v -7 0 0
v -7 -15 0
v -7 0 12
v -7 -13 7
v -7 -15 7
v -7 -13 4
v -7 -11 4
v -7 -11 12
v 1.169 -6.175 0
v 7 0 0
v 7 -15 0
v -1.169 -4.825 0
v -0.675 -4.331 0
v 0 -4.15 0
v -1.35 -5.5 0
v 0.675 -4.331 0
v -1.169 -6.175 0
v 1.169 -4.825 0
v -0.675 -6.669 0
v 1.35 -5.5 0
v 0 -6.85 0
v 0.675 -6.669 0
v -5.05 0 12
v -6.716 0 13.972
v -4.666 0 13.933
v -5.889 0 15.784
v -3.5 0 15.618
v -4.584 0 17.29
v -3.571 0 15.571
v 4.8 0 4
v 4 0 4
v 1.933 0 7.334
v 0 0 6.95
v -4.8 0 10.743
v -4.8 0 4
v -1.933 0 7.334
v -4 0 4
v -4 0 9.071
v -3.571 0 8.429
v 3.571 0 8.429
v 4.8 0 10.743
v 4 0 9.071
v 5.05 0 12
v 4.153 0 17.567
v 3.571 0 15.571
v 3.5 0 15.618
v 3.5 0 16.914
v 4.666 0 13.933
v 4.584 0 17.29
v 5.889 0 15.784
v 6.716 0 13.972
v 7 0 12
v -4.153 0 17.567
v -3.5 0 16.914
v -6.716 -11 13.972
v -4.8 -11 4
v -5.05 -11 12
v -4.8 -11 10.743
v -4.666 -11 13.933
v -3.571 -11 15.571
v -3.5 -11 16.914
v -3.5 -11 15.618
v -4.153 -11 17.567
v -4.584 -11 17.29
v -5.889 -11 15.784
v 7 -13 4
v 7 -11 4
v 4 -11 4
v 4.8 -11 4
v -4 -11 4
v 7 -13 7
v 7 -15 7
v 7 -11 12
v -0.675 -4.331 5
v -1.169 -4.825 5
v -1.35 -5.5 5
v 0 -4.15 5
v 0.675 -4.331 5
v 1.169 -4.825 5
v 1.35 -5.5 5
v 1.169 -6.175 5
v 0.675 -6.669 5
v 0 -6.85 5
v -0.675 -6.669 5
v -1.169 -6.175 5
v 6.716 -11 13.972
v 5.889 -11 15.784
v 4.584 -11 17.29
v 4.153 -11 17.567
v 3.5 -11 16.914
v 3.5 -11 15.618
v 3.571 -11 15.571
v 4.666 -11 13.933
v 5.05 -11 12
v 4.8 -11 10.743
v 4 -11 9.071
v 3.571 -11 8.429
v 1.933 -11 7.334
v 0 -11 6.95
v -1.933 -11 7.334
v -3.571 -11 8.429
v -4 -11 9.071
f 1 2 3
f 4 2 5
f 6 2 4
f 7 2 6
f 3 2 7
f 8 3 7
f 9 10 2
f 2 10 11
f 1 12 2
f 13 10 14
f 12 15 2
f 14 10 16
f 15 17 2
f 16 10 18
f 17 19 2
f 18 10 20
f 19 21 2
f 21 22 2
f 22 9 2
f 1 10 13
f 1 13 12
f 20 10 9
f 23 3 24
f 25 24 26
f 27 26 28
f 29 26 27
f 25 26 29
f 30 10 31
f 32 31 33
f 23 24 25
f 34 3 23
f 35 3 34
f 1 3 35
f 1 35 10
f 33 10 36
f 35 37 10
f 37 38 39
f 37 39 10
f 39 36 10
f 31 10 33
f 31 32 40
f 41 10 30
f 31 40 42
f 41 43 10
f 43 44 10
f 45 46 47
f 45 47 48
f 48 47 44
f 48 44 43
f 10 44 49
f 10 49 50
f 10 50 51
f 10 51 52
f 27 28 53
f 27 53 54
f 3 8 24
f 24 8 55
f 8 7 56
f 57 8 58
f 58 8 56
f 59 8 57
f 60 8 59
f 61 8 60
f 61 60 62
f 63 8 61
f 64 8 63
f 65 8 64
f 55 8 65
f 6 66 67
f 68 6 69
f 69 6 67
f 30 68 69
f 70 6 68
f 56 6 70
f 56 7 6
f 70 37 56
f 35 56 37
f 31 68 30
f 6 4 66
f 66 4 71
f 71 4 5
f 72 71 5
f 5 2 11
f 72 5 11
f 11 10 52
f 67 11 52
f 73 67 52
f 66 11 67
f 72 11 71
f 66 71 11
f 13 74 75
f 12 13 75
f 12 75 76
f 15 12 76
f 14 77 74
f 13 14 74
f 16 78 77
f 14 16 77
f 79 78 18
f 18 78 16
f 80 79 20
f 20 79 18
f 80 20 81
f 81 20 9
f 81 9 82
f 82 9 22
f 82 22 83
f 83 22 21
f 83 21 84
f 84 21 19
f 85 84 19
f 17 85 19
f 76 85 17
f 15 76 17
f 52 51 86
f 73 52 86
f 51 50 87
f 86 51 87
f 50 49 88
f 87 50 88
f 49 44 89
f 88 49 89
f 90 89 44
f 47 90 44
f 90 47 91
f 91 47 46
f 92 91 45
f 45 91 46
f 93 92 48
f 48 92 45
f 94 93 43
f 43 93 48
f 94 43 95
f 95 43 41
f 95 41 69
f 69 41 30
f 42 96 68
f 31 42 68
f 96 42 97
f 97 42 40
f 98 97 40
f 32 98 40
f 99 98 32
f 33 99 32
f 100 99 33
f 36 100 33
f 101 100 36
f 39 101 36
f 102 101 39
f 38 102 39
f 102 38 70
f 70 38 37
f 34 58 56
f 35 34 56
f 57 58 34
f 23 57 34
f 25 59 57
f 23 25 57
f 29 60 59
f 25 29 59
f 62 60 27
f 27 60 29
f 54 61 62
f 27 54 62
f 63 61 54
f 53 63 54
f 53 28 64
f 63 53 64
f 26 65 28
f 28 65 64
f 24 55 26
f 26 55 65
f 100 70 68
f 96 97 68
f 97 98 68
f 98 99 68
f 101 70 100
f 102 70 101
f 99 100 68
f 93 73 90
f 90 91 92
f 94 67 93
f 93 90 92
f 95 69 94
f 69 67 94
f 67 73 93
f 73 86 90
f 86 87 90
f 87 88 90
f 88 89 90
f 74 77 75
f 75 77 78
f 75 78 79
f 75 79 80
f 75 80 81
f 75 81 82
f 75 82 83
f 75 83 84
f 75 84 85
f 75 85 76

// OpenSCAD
// file: configuration.scad
// PRUSA Mendel  
// Configuration file
// GNU GPL v2
// Josef Průša
// josefprusa@me.com
// prusadjs.cz
// http://www.reprap.org/wiki/Prusa_Mendel
// http://github.com/prusajr/PrusaMendel

// PLEASE SELECT ONE OF THE CONFIGURATIONS BELOW
// BY UN-COMMENTING IT

variant=0; //0 for metric
//variant=1; //1 for SAE
if(variant==0){
echo("variant: metric");
}else if(variant==1){
echo("variant: sae");
} else{
echo("WARNING: INVALID CONFIGURATION");
}


vars=[
//[m8_dia, m8_nut, m4_dia, m4_nut, m3_dia, m3_nut, bush_dia, mot_shaft, bush_rod, bush_outerdia, bush_length]
[8.3,16.4,4.3,9,3.3,7,11,5.3,8,16,11],//metric
[9,15.7,5.5,10.6,5.5,10.6,11.5,5.3,7.9375,16,11]//SAE
];

//BUSHING TYPE Can generate three versions
// 1 - regular old ones
// 2 - helical ones
// 3 - holders for brass or any other bought bushings
bushing_type = 2;

//Round corner diameter
round_corner_diameter = 8;

//X end parameters
axis_diameter_real = 4;
axis_diameter_larger = 4.2 ;
pressure_pad_height = 0.7;

//Thin wall size
layer_height = 0.4;
perimeter_width_over_thicknes = 1.6;
infill_widht_over_thickness = 1.55;
thin_wall = 2*(perimeter_width_over_thicknes*layer_height+infill_widht_over_thickness*layer_height);
if(thin_wall<2){
	echo("Check thin wall size, its below 2mm!");
}
echo(thin_wall);

//DO NOT TOUCH THIS SECTION!
m8_diameter = vars[variant][0];
m8_nut_diameter = vars[variant][1];
m4_diameter = vars[variant][2];
m4_nut_diameter = vars[variant][3];
m3_diameter = vars[variant][4];
m3_nut_diameter = vars[variant][5];
bushing_diameter = vars[variant][6];
motor_shaft=vars[variant][7];
bushing_rodsize = vars[variant][8];
bushing_outerDiameter = vars[variant][9];
bushing_lenght = vars[variant][10];


// MINI-HUXLEY VERSION (TODO, just place holder)
// include <configuration-huxley.scad>

// MEGA VERSION (TODO, just place holder)
// include <configuration-mega.scad>


// Some basic functions, probably should be somewhere else
module roundcorner(diameter){
	difference(){
		cube(size = [diameter,diameter,99], center = false);
		translate(v = [diameter, diameter, 0]) cylinder(h = 100, r=diameter, center=true);
	}
}
module polyhole(h, d) {
    n = max(round(2 * d),3);
    rotate([0,0,180])
        cylinder(h = h, r = (d / 2) / cos (180 / n), $fn = n);
}
// main file
// PRUSA Mendel  
// Bushings
// GNU GPL v2
// Josef Průša
// josefprusa@me.com
// prusadjs.cz
// http://www.reprap.org/wiki/Prusa_Mendel
// http://github.com/prusajr/PrusaMendel

include <configuration.scad>

/**
 * @name Bushing
 * @category Printed
 * @link bushing
 */ 

rodsize = bushing_rodsize+0.1;
outerDiameter = bushing_outerDiameter;
lenght = bushing_lenght;
type = bushing_type;


module bushing(stiff, lenght=11){
	difference(){
		union(){
			translate(v=[-7,-8,0])cube(size = [14,8,lenght]);
			cylinder(h = lenght, r=7);
		}
	//cutout inside
	//Opening
	rotate(a=[0,0,45]) translate(v=[1,1,-1]) cube(size = [16,16,lenght+2]);
	//Cutouts to make it more bendy
	if(stiff){
		translate(v=[-4.8,-6,-1]) cube(size = [0.8,6,lenght+2]);
		translate(v=[4,-6,-1]) cube(size = [0.8,6,lenght+2]);
	}else{
		translate(v=[-4.8,-8,-1]) cube(size = [0.8,8,lenght+2]);
		translate(v=[4,-8,-1]) cube(size = [0.8,8,lenght+2]);
	}
	translate(v=[0,5,(lenght+2)/2]) cube(size = [7,8,lenght+2], center=true);
	translate(v=[0,0,-1]) cylinder(h = lenght+2, r=(rodsize+2)/2);
	}
}
module do_bushing(base_depth){
translate([0,0,8+base_depth]) rotate([90,0,0])
difference(){
	union(){
		bushing(false, 11);
		translate(v=[-7,-8-base_depth,0])cube(size = [14,base_depth,15]);
		translate(v=[-7,-8-base_depth,13])cube(size = [14,base_depth+3,2]);
	}
	translate([0,-6-base_depth,5.5]) rotate([90,0,0]) cylinder(h=base_depth+2,r=2.7/2,center=true, $fn=12);
}
}

do_bushing(4);
